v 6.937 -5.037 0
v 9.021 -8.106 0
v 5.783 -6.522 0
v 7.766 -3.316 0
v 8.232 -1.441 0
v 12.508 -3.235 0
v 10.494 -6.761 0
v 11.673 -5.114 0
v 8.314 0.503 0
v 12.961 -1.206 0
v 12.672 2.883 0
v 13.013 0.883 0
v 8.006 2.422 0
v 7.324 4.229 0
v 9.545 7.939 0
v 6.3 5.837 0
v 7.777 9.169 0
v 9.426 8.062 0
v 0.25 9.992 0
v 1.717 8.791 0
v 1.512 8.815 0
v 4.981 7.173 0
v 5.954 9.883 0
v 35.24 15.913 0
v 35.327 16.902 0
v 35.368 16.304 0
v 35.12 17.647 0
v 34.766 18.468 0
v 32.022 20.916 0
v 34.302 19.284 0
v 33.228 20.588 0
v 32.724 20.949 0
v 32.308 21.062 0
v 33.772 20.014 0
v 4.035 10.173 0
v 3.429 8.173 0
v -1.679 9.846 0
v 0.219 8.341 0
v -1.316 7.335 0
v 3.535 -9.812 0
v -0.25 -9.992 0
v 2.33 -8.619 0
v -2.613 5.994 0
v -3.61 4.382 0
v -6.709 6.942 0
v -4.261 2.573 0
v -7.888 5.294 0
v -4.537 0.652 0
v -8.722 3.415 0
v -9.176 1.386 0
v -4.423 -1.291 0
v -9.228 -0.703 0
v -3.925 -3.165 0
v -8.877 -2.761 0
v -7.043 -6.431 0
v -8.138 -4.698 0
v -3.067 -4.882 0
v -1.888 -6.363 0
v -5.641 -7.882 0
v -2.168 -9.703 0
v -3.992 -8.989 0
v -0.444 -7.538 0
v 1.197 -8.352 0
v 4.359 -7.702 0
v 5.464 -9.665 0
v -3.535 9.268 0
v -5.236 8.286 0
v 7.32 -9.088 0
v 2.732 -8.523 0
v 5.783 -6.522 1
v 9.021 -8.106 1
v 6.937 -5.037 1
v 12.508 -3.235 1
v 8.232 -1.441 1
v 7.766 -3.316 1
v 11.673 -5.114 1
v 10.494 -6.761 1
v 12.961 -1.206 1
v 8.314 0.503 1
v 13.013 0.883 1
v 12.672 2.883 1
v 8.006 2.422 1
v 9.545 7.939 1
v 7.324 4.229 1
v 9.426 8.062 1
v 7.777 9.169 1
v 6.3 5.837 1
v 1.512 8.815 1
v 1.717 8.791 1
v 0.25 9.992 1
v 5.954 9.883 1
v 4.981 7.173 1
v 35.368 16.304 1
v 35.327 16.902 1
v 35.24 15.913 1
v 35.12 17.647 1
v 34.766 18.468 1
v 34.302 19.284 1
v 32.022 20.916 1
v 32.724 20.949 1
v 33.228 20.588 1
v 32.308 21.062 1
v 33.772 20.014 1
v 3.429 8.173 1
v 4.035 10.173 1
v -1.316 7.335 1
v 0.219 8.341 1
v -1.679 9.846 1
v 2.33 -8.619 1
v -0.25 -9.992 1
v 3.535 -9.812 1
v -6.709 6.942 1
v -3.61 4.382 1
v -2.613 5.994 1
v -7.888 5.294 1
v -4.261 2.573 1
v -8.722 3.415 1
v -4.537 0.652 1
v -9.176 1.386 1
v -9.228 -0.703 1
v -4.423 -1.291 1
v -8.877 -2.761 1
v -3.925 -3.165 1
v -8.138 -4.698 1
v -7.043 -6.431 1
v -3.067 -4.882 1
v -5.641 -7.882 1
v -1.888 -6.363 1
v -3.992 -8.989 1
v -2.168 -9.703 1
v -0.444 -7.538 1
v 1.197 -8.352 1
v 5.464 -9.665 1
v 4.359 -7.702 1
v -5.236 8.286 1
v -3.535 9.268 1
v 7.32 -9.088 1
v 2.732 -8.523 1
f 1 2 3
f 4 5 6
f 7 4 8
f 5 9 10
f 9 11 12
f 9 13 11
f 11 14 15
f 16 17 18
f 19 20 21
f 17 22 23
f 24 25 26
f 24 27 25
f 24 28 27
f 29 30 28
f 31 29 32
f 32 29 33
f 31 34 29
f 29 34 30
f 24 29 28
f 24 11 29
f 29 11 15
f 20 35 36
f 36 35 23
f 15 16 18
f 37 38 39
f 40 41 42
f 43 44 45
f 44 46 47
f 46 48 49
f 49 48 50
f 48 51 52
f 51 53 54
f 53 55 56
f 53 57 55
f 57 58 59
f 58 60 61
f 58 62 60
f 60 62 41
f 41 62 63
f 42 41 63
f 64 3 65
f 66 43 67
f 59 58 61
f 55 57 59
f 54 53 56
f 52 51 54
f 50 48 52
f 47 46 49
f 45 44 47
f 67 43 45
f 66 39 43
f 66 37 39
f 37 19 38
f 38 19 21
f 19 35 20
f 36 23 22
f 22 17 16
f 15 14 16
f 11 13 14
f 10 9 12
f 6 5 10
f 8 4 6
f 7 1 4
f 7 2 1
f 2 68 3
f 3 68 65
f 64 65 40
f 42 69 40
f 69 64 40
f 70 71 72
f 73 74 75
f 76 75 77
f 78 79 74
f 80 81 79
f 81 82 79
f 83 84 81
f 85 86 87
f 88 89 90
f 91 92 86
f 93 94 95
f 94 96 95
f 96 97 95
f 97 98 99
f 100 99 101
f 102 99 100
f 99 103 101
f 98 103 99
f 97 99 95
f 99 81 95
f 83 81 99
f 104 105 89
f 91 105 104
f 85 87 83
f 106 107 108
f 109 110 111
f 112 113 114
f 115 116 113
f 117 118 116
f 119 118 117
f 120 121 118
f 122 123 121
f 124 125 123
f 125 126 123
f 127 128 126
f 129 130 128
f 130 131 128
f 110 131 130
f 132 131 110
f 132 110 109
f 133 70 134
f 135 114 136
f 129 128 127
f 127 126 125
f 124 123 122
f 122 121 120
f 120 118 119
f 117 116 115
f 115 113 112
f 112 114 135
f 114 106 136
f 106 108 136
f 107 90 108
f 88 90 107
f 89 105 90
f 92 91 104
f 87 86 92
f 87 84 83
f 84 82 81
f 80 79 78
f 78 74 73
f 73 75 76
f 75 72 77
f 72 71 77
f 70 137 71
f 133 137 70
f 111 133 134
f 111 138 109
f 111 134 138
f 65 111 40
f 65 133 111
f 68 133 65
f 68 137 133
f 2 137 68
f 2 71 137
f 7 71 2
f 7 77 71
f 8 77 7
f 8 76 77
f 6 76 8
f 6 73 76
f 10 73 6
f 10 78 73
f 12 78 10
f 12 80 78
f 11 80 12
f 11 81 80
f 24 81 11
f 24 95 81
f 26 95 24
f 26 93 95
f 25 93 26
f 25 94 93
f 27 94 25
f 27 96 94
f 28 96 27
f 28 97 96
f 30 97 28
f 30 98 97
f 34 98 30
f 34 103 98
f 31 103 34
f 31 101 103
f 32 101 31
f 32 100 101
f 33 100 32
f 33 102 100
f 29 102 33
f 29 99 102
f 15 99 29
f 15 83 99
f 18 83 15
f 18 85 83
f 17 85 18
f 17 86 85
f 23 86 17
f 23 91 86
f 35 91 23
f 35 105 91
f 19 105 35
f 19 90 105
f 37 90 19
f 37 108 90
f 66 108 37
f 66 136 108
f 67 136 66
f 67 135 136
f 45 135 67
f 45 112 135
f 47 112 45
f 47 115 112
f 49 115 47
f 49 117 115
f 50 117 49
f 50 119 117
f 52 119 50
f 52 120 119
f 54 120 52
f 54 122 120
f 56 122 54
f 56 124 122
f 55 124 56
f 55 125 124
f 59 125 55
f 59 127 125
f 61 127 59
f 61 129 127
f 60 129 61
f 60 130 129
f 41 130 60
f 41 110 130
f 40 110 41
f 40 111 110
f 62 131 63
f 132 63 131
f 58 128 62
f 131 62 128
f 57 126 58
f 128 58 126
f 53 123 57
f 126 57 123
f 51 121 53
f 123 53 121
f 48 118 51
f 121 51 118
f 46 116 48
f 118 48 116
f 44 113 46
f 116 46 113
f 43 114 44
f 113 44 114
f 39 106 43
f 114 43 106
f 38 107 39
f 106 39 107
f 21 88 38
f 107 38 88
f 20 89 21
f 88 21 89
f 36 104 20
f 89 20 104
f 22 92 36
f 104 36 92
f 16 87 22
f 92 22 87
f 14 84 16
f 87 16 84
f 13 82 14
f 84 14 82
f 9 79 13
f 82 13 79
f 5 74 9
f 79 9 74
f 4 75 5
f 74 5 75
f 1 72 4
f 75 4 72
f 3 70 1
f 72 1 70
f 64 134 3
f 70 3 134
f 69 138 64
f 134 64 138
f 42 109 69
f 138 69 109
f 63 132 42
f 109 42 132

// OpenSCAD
module thing() {
    translate([0,0,30]) rotate([10,20,30]) {
        difference() {
            cylinder(r=10, h=10);
            translate([0,0,-1]) cylinder(r=9, h=12);
        }
        translate([9,0,5]) rotate([0,90,0]) cylinder(r=3, h=30, $fn=20);
    }
}

linear_extrude(1)
projection()
thing();
